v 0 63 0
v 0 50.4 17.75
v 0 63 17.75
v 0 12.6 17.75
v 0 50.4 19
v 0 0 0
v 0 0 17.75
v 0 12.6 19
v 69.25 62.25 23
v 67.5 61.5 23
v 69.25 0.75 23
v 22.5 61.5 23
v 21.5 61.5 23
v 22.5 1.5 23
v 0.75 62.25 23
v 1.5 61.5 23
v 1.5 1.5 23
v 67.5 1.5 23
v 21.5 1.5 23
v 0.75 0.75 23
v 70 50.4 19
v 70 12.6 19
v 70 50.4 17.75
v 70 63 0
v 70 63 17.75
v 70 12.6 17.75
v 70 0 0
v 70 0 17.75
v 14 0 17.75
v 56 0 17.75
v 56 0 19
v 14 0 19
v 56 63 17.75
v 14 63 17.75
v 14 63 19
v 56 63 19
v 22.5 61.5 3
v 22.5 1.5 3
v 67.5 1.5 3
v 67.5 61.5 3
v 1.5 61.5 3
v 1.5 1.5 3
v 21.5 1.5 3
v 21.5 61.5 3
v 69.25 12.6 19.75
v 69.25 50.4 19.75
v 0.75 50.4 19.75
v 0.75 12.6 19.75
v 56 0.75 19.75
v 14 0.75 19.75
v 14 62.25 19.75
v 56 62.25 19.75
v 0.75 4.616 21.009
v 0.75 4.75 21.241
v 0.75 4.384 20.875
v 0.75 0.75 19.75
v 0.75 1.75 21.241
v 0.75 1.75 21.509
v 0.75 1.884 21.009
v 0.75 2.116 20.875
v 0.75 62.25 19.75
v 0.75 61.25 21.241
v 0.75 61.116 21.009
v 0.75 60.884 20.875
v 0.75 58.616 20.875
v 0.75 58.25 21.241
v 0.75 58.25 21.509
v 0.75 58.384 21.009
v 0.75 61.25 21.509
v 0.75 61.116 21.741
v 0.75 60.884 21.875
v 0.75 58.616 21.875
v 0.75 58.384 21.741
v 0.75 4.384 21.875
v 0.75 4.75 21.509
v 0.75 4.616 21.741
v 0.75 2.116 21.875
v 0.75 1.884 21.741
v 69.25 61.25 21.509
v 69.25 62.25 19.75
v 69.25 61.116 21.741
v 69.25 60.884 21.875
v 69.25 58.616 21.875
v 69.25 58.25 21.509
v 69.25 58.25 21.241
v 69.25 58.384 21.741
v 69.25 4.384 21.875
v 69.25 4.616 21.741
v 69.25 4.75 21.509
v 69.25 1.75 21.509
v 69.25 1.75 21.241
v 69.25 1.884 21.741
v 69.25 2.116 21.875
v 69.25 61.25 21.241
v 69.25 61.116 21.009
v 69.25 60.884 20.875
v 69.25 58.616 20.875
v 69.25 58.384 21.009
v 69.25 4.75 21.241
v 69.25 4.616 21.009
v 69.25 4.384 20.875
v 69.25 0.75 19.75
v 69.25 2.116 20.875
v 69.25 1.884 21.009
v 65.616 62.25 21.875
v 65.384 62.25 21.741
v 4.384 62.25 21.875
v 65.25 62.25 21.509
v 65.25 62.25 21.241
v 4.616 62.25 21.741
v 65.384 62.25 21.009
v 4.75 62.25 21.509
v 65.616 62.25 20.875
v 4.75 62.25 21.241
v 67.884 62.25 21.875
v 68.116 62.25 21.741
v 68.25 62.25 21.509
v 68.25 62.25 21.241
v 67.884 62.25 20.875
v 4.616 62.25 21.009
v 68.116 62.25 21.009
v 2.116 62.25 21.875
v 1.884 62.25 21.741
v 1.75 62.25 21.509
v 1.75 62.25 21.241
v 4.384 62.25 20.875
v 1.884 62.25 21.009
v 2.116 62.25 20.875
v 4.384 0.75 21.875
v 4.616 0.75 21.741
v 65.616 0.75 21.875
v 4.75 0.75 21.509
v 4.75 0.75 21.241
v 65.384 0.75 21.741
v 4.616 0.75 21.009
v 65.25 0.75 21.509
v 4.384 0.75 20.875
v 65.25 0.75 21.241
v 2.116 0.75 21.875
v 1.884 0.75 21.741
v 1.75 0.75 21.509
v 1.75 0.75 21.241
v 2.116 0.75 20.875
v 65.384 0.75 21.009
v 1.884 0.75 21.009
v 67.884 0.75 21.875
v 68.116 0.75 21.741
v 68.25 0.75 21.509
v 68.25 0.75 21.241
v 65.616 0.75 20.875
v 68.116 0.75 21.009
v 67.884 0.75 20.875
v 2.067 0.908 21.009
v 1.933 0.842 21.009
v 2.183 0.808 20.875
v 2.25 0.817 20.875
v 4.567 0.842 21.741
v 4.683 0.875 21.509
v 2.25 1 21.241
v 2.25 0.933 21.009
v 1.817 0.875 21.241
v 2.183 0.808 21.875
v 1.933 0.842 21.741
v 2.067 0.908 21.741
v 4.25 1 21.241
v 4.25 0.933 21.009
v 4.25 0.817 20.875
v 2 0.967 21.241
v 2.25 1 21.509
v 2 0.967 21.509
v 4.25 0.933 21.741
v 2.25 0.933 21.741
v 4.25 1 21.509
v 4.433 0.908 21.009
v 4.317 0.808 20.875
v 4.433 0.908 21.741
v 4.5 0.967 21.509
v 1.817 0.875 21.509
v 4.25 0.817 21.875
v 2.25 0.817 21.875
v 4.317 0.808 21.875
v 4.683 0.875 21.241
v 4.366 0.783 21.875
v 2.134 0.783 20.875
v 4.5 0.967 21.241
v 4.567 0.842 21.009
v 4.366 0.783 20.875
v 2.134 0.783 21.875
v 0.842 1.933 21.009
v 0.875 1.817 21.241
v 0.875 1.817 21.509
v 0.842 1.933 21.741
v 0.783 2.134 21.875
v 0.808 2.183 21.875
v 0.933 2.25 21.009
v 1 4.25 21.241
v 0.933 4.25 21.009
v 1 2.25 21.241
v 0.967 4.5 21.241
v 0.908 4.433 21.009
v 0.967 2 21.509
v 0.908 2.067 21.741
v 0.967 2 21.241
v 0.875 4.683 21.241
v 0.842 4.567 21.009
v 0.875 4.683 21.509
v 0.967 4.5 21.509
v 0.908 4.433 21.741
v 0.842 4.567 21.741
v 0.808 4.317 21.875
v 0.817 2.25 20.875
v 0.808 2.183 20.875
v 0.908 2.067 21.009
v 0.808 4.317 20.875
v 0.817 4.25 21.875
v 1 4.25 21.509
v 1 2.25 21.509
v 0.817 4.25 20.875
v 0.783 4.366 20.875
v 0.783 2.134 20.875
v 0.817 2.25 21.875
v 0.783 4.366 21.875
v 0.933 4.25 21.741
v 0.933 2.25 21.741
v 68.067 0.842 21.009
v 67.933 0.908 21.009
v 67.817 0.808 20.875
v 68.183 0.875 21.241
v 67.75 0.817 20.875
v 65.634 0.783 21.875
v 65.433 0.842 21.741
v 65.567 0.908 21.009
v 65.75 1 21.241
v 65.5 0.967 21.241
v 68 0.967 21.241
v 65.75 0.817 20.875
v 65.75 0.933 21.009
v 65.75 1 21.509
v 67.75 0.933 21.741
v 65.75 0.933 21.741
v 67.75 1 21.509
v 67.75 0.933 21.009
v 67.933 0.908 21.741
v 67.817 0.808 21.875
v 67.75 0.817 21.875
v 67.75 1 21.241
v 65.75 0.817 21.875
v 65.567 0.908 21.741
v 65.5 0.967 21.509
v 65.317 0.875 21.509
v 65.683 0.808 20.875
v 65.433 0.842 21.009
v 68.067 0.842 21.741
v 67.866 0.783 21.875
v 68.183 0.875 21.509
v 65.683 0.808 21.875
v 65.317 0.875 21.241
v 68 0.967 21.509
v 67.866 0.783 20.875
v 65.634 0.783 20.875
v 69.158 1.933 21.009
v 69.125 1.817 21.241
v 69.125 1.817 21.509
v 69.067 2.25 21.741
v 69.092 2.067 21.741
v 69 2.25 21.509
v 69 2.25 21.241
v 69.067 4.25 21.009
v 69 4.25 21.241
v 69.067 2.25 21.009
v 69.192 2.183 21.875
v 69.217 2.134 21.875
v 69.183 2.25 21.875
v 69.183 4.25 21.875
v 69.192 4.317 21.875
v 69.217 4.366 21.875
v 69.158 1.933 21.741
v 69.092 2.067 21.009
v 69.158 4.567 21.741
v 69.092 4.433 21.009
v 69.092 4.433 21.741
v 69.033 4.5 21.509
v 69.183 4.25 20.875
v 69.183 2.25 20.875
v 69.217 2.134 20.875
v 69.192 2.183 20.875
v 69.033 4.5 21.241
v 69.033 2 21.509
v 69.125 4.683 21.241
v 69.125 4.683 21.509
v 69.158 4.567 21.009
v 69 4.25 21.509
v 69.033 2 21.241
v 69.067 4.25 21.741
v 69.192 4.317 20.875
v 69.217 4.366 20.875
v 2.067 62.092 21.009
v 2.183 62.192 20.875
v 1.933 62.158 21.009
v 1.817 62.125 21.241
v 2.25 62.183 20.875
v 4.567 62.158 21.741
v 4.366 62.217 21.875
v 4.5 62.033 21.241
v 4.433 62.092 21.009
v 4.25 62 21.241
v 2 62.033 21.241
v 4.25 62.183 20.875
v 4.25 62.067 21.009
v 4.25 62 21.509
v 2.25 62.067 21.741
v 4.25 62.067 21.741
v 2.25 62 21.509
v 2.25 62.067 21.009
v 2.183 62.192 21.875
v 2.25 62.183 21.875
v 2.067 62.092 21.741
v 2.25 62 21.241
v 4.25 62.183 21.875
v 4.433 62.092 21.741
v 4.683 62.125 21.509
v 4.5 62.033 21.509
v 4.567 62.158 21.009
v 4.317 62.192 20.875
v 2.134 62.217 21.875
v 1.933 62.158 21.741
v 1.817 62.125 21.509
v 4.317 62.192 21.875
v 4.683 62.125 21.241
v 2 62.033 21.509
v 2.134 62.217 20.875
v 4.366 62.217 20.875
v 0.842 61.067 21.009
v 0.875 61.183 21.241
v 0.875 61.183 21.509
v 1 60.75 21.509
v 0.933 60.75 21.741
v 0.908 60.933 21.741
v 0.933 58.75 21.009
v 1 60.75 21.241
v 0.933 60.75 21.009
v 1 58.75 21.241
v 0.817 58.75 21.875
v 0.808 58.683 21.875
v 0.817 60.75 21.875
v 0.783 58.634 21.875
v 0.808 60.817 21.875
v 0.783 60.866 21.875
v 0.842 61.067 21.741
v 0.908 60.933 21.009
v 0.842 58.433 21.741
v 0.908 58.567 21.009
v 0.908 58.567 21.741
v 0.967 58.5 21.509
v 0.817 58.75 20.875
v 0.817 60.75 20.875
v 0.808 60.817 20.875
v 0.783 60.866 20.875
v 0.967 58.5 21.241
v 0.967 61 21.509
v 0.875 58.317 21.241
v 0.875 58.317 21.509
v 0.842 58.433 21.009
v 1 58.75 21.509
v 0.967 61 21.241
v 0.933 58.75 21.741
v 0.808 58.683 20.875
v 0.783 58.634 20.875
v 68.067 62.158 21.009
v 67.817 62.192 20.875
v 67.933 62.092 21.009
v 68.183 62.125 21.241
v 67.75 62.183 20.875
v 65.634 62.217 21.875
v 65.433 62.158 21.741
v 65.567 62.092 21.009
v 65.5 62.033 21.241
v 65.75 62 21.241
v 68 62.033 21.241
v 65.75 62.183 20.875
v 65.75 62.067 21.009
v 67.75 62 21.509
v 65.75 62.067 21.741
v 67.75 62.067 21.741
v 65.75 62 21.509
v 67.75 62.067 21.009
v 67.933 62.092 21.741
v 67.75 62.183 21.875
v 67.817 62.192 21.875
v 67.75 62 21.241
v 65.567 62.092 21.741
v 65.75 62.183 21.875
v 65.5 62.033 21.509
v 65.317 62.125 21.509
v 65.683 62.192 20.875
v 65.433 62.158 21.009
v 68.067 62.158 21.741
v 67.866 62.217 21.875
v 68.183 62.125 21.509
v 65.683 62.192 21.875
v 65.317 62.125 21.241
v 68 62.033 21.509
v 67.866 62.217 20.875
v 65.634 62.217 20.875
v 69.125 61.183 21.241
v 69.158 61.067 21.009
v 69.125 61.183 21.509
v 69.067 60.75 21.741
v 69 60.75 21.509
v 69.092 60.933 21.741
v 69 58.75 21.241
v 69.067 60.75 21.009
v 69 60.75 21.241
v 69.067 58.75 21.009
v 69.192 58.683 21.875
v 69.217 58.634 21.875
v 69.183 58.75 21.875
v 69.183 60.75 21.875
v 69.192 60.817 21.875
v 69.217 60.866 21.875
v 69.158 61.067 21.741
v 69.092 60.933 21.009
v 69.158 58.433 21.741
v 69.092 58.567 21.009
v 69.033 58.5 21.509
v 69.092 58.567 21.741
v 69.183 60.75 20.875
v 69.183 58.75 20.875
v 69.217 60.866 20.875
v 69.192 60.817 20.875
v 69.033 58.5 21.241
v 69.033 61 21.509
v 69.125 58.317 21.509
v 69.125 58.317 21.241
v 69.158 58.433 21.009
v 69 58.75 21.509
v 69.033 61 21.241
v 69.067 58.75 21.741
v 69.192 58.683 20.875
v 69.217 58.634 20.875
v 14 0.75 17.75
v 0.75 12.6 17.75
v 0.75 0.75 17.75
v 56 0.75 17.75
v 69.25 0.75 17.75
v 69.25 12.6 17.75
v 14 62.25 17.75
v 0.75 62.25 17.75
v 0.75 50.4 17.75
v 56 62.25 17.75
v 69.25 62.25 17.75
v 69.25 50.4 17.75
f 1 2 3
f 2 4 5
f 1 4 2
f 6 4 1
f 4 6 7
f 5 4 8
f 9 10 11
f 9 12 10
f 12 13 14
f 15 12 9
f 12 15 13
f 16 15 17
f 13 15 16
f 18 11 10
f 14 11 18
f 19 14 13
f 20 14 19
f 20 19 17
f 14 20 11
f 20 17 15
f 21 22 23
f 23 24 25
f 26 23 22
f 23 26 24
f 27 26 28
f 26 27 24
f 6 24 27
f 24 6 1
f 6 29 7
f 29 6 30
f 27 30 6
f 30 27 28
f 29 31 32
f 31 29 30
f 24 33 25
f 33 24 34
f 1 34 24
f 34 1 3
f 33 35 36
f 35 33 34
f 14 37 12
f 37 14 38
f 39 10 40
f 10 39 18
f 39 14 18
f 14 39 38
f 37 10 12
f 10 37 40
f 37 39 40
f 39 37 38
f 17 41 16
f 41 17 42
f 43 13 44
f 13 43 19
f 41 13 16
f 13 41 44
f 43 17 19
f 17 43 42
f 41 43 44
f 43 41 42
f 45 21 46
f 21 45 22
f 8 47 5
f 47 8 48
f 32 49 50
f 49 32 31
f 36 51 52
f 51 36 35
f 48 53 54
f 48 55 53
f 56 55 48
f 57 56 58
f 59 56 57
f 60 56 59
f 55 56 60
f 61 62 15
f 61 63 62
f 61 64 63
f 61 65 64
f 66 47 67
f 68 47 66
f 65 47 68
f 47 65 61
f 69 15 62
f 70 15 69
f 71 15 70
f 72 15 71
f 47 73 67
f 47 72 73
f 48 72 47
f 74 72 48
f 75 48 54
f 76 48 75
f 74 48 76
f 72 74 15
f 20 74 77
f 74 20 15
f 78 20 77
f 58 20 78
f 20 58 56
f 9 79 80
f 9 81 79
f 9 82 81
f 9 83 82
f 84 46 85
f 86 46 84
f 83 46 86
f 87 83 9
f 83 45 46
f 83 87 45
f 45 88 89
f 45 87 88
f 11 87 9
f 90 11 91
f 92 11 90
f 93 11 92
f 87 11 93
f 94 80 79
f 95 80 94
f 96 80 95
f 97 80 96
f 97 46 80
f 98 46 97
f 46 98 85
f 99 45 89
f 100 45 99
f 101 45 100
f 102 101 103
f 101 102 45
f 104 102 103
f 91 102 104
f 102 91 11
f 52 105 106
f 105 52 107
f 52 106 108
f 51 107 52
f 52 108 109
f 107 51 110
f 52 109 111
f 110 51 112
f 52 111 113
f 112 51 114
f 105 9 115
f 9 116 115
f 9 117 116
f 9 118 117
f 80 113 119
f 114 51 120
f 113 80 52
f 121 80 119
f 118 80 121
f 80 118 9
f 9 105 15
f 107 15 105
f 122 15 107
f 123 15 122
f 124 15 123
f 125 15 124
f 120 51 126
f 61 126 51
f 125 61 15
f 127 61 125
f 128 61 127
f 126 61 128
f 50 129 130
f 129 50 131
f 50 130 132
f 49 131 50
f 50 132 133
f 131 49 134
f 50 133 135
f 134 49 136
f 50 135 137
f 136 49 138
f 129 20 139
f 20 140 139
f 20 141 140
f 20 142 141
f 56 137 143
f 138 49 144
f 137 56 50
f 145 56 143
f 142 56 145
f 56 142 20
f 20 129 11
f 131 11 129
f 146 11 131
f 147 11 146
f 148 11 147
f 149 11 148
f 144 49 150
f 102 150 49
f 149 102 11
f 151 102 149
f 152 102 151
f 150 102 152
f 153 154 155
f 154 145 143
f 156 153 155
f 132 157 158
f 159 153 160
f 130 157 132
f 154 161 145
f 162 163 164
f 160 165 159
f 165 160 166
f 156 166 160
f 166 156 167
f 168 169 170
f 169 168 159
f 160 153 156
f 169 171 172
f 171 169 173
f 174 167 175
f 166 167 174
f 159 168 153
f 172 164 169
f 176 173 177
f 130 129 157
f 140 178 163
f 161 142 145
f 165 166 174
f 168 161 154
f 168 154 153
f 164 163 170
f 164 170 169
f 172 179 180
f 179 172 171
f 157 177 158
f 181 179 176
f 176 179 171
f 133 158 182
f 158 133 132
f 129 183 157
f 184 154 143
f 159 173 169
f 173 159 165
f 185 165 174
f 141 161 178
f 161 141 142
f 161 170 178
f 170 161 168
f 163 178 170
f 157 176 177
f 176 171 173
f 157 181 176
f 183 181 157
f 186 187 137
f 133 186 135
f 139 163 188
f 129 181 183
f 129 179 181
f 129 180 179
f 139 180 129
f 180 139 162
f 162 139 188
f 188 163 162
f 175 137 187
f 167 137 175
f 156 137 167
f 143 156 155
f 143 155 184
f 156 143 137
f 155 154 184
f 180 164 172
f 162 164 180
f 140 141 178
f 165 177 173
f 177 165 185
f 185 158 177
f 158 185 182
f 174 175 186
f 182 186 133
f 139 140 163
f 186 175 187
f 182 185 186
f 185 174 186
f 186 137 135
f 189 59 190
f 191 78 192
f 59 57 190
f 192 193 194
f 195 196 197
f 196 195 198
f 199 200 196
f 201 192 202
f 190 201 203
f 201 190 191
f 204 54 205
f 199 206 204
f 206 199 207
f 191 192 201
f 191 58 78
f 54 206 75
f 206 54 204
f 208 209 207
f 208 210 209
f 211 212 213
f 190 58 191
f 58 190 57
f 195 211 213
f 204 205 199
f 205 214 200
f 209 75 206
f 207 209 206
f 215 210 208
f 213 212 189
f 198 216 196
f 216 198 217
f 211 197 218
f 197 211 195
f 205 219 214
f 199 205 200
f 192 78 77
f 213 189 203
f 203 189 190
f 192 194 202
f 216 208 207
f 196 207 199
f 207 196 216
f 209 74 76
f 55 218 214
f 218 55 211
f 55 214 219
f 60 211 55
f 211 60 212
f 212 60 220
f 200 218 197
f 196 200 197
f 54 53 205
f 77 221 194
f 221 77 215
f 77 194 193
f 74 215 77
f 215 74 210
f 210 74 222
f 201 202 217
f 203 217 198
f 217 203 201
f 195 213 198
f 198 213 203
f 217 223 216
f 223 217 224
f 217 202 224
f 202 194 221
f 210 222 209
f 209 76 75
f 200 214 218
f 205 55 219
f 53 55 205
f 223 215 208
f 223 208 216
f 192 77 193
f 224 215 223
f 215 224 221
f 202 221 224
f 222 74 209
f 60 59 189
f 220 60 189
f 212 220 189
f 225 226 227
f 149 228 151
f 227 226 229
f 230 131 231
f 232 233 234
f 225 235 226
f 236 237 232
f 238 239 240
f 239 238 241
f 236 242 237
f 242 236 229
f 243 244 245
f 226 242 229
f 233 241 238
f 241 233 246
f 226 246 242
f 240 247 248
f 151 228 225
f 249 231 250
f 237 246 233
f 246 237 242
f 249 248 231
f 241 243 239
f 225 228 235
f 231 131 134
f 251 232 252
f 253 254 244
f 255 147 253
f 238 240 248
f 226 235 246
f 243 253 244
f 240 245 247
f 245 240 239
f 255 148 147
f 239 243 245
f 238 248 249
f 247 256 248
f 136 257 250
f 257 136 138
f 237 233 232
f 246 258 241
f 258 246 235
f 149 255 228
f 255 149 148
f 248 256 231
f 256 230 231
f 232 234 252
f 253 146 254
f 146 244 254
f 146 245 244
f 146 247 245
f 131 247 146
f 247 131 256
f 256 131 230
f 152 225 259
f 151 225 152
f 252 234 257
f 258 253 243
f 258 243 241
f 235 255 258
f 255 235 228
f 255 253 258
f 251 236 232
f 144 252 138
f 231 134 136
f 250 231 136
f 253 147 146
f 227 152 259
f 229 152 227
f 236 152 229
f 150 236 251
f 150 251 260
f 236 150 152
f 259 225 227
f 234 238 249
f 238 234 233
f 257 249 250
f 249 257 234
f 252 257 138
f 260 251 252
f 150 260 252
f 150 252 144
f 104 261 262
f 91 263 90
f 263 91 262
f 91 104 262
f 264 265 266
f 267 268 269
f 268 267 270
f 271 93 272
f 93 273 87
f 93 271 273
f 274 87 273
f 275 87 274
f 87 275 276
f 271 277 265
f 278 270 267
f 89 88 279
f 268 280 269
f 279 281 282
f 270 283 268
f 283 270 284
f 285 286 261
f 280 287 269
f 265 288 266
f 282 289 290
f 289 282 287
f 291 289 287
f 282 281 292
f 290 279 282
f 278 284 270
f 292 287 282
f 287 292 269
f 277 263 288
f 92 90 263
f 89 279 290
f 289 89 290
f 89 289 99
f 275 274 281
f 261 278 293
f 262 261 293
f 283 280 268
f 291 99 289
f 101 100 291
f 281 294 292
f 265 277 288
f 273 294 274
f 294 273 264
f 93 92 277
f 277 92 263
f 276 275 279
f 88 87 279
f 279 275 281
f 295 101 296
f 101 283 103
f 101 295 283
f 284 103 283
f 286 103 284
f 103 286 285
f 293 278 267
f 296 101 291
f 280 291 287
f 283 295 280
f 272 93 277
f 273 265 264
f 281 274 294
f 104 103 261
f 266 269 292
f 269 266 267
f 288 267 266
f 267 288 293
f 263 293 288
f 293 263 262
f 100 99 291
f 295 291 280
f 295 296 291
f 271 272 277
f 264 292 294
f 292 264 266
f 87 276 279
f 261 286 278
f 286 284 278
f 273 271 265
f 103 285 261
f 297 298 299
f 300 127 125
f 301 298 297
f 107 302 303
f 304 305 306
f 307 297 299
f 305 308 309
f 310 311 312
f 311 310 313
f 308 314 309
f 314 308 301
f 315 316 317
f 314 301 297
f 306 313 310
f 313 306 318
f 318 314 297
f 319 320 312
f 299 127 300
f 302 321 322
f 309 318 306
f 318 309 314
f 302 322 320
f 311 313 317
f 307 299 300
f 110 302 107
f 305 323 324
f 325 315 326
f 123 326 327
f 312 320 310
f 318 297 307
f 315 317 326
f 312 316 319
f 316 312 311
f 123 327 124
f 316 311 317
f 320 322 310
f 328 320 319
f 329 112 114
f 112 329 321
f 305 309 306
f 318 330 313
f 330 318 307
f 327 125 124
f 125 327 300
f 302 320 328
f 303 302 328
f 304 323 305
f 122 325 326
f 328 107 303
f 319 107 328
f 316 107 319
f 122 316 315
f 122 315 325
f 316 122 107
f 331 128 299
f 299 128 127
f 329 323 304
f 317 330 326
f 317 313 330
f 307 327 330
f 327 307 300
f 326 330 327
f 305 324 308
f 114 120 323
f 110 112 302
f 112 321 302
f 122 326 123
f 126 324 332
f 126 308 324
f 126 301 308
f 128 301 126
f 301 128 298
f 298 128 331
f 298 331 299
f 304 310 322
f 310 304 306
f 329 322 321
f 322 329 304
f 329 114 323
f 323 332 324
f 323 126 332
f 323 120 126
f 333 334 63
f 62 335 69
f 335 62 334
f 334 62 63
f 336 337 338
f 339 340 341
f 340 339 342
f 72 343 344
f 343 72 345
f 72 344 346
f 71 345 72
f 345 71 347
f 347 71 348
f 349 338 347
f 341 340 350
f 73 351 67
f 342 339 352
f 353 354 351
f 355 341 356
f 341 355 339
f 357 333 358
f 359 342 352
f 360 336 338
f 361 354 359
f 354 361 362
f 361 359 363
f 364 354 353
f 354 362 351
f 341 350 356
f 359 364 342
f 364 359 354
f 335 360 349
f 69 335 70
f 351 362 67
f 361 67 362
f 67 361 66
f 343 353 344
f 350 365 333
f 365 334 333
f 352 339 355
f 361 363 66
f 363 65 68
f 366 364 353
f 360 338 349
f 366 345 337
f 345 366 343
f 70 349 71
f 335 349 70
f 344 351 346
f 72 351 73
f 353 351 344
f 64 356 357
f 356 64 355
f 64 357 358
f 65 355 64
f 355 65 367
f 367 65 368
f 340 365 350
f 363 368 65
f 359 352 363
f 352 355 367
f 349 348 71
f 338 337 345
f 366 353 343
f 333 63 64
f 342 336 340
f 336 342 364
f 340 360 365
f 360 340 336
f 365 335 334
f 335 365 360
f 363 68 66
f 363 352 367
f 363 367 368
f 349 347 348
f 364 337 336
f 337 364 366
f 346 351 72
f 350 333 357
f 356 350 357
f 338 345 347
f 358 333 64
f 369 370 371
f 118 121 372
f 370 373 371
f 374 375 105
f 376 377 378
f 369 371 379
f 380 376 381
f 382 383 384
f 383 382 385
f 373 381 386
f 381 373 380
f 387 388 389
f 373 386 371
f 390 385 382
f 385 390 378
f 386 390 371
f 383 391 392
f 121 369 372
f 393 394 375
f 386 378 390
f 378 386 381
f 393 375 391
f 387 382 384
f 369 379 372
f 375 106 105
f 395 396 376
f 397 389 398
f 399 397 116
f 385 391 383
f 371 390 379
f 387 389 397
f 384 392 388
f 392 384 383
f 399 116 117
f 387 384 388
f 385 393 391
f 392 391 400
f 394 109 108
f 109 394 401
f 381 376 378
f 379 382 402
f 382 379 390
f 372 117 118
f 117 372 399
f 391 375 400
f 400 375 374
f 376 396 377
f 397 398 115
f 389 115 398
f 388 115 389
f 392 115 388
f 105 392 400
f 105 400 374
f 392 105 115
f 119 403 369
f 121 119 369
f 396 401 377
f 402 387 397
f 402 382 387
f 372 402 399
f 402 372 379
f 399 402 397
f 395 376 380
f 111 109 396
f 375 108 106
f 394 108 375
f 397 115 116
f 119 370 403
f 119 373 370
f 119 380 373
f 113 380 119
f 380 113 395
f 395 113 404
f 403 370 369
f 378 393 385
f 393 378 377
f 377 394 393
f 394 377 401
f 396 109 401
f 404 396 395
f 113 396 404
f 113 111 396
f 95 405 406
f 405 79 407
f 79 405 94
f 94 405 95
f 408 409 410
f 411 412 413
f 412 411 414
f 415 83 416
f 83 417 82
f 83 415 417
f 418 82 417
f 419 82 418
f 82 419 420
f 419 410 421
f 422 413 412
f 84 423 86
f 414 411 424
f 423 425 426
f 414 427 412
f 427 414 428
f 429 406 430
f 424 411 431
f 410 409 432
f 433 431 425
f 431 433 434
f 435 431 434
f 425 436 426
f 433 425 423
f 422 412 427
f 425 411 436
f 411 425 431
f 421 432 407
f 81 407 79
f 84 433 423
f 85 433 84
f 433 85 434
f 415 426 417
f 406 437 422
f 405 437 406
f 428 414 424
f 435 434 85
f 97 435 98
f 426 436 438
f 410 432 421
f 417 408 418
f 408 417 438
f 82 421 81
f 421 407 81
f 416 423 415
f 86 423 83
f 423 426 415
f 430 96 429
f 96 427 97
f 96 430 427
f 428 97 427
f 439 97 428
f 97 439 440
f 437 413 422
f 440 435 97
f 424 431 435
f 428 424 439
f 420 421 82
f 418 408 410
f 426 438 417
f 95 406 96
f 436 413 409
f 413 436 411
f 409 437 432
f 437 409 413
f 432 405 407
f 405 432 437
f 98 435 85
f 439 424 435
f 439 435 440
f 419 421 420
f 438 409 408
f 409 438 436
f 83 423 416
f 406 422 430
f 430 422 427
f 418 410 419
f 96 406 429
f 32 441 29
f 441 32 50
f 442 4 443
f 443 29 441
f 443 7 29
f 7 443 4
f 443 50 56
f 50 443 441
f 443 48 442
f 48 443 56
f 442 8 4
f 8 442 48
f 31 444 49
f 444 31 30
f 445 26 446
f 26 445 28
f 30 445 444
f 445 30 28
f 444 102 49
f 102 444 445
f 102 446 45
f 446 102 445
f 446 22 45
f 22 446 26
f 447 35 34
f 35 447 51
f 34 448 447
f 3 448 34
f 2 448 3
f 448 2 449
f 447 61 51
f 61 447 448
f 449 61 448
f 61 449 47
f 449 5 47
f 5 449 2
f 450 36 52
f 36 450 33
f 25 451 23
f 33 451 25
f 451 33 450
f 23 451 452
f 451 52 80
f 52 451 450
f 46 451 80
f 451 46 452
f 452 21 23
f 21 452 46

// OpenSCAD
include <boardgame_insert_toolkit_lib.2.scad>;

// determines whether lids are output.
g_b_print_lid = false;

// determines whether boxes are output.
g_b_print_box = true; 

// Focus on one box
// g_isolated_print_box = ""; 

// Used to visualize how all of the boxes fit together. 
g_b_visualization = false;          
        
// this is the outer wall thickness. 
//Default = 1.5mm
g_wall_thickness = 1.5;

// The tolerance value is extra space put between planes of the lid and box that fit together.
// Increase the tolerance to loosen the fit and decrease it to tighten it.
//
// Note that the tolerance is applied exclusively to the lid.
// So if the lid is too tight or too loose, change this value ( up for looser fit, down for tighter fit ) and 
// you only need to reprint the lid.
// 
// The exception is the stackable box, where the bottom of the box is the lid of the box below,
// in which case the tolerance also affects that box bottom.
//
g_tolerance = 0.15;

// This adjusts the position of the lid detents downward. 
// The larger the value, the bigger the gap between the lid and the box.
g_tolerance_detents_pos = 0.1;

data =
[
    [   "hansa_playerbox",
        [
            [ BOX_SIZE_XYZ,                                     [70, 63, 23] ],
            [ BOX_LID,
                [
                    [ LID_SOLID_B, f],
                    [LID_FIT_UNDER_B, f]
                ]
            ],
            [ BOX_COMPONENT,
                [
                    [CMP_COMPARTMENT_SIZE_XYZ,  [ 45, 60, 20] ],
                    //[CMP_MARGIN_FBLR, [1,1,1,1]]
                    [ POSITION_XY, [ 21, 0 ] ]
                ]
            ],   
            [ BOX_COMPONENT,
                [
                    [CMP_COMPARTMENT_SIZE_XYZ,  [ 20, 60, 20] ],
                    //[CMP_MARGIN_FBLR, [1,1,1,1]]
                    [ POSITION_XY, [ 0, 0 ] ]
                ]
            ],                            
        ]
    ],
];


MakeAll();
